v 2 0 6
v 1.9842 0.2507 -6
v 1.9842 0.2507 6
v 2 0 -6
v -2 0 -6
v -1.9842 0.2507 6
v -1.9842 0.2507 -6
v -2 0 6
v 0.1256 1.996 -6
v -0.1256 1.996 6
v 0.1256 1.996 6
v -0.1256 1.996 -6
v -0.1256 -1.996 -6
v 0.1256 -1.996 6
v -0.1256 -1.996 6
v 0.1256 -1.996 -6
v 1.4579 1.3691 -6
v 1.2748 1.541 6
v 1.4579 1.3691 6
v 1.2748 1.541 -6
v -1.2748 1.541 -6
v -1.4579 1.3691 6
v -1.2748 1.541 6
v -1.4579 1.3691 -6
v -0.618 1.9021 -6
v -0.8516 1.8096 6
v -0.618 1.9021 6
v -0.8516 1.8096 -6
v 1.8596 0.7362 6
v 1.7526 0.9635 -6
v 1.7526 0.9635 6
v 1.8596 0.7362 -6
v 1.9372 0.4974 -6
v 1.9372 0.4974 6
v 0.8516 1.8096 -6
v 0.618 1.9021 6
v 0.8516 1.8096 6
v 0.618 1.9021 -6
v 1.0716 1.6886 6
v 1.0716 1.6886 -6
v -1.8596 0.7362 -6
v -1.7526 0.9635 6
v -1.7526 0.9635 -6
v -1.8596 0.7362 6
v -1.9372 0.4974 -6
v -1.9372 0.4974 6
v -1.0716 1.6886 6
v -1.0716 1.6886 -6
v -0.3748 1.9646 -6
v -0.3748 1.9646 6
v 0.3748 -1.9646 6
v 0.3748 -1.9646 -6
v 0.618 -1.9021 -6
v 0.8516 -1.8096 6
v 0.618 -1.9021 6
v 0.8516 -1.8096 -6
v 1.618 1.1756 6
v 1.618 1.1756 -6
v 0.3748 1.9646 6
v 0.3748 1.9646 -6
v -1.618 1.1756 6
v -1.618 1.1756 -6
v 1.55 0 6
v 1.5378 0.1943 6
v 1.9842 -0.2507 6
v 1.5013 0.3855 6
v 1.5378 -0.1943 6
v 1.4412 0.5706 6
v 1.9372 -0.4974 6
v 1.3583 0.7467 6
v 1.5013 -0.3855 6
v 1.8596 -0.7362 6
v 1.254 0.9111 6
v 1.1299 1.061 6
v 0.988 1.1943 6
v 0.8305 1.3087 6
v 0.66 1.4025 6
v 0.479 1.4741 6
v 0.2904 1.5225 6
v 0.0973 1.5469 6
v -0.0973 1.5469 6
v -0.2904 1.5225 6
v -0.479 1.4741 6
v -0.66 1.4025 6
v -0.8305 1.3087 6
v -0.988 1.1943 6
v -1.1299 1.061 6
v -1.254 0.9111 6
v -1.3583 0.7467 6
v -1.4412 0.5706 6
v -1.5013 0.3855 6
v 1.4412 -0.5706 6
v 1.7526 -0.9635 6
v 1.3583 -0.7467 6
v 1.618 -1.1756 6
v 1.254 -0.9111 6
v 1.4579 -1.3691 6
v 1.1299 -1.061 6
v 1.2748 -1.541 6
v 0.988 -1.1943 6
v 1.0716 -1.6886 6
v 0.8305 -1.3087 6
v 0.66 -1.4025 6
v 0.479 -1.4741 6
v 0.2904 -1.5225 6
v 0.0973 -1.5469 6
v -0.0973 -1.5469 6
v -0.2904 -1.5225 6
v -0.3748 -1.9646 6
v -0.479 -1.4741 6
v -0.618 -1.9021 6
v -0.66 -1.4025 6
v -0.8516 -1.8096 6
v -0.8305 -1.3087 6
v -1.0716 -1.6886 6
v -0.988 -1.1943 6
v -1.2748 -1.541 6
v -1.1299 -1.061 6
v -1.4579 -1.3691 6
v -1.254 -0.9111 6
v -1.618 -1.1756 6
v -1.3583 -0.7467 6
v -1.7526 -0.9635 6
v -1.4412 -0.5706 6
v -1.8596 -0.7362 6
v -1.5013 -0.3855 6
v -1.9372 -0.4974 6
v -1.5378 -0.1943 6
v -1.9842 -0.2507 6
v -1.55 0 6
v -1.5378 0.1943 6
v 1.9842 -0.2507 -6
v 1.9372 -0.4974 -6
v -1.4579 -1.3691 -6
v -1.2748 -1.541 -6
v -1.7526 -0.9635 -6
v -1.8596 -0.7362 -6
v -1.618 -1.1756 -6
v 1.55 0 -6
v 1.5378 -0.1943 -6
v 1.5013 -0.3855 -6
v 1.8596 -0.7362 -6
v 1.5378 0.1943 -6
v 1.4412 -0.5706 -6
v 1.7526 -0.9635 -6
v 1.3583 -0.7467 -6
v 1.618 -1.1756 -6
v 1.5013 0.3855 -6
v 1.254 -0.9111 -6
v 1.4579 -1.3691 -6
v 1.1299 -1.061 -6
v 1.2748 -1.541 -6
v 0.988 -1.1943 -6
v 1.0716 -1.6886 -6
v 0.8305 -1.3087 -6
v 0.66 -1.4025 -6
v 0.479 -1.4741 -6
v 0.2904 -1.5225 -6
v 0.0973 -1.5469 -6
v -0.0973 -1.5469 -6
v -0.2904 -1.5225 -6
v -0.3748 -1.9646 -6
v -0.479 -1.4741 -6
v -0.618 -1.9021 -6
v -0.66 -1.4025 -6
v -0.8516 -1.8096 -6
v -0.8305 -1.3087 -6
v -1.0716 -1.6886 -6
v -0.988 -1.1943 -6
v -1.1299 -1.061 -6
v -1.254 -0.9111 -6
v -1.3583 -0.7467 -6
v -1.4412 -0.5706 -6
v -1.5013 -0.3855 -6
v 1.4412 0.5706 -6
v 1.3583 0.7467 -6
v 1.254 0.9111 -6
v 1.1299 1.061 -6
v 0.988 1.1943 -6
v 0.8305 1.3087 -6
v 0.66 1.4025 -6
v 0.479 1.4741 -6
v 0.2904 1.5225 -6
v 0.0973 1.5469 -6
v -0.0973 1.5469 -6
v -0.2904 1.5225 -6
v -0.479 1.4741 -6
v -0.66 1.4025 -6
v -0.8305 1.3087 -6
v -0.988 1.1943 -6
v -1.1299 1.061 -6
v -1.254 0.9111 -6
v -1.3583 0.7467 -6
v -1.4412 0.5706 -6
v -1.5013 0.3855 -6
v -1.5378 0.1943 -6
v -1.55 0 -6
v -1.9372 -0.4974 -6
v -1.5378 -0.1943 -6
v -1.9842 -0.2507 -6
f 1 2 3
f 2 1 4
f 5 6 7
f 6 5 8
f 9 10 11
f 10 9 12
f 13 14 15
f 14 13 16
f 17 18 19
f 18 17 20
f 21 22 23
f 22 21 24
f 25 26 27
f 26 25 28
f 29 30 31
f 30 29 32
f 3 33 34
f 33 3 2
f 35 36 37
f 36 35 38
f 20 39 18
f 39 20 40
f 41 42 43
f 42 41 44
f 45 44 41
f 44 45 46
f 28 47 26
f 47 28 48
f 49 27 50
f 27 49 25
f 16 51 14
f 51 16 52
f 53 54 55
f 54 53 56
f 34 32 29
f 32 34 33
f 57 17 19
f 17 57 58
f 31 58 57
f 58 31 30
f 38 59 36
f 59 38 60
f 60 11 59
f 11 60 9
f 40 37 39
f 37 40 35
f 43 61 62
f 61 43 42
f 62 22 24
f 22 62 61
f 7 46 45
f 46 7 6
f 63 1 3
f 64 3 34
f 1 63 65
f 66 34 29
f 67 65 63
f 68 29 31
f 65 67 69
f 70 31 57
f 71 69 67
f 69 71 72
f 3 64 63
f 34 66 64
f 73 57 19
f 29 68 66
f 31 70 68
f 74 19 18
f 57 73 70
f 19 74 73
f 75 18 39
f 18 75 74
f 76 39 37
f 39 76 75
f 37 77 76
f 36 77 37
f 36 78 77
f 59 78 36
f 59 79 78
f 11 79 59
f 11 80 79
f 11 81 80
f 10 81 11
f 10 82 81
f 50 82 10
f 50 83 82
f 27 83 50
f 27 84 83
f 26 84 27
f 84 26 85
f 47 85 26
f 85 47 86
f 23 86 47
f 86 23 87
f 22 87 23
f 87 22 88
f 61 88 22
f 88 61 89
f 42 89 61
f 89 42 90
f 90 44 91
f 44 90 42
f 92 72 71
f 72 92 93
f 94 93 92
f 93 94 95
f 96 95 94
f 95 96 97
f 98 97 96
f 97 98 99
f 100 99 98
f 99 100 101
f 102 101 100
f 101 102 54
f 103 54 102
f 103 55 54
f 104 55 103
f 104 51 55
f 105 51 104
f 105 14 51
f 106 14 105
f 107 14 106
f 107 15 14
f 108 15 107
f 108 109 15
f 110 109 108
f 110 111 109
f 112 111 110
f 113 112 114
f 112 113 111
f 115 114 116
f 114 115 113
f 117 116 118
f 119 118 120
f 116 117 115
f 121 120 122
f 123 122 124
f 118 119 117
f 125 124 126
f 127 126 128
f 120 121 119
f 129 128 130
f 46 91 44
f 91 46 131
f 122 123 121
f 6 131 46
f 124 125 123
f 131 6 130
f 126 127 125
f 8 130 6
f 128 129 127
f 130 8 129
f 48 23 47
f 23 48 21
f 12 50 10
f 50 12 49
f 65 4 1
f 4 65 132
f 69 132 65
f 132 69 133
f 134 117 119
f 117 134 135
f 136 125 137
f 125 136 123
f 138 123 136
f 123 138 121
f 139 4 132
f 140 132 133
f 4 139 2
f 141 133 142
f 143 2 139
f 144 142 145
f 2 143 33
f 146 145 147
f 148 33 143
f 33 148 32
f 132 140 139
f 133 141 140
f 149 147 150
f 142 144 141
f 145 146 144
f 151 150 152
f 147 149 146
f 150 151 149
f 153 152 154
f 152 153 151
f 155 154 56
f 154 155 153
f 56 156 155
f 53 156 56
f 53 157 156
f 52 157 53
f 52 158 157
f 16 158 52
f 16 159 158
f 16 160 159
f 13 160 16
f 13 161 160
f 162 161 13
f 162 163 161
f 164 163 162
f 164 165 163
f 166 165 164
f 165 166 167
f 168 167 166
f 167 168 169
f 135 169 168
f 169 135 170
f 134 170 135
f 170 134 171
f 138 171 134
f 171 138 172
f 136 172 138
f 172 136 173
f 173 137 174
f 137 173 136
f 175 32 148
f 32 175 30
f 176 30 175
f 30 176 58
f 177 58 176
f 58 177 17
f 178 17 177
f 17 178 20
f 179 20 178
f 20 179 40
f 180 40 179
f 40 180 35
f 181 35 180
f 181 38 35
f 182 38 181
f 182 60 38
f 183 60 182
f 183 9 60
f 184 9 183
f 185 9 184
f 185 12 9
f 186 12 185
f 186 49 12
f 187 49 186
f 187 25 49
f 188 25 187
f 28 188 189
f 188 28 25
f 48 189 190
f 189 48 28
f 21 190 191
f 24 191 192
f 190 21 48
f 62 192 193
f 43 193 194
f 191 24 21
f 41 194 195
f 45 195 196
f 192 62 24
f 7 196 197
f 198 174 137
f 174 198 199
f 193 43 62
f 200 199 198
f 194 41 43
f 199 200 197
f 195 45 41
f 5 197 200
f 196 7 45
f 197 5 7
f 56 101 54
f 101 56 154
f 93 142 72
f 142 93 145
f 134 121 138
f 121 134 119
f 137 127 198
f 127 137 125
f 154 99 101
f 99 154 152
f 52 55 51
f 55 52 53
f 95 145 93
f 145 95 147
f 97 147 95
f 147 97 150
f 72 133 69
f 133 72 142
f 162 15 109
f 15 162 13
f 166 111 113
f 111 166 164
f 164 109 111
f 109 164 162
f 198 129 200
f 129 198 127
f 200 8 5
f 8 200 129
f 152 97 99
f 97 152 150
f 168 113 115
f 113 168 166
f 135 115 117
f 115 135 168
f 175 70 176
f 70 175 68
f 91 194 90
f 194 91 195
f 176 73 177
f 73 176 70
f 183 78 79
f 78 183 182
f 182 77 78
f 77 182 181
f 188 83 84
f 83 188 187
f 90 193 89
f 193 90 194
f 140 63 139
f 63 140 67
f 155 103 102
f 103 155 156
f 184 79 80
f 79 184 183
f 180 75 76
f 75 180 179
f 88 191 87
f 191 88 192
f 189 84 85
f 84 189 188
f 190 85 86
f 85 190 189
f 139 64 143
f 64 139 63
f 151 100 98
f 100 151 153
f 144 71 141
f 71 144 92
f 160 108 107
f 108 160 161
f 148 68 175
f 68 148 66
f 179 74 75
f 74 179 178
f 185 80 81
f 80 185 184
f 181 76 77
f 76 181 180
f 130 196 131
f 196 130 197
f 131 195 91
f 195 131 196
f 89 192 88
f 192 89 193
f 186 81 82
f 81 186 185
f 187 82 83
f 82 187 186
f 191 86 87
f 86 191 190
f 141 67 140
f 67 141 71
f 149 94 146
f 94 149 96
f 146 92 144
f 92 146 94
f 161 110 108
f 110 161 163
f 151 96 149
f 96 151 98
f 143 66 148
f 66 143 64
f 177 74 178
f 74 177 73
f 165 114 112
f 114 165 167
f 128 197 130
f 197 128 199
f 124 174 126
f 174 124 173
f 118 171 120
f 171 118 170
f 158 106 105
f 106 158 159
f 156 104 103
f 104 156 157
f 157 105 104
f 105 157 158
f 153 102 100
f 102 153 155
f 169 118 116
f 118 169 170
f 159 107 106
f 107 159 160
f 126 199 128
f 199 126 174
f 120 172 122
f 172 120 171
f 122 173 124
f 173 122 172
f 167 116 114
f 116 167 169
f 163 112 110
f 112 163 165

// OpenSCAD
$fn = 50;


difference() {
	union() {
		translate(v = [0, 0, -6.0000000000]) {
			cylinder(h = 12, r = 2.0000000000);
		}
	}
	union() {
		translate(v = [0, 0, -100.0000000000]) {
			cylinder(h = 200, r = 1.5500000000);
		}
	}
}
